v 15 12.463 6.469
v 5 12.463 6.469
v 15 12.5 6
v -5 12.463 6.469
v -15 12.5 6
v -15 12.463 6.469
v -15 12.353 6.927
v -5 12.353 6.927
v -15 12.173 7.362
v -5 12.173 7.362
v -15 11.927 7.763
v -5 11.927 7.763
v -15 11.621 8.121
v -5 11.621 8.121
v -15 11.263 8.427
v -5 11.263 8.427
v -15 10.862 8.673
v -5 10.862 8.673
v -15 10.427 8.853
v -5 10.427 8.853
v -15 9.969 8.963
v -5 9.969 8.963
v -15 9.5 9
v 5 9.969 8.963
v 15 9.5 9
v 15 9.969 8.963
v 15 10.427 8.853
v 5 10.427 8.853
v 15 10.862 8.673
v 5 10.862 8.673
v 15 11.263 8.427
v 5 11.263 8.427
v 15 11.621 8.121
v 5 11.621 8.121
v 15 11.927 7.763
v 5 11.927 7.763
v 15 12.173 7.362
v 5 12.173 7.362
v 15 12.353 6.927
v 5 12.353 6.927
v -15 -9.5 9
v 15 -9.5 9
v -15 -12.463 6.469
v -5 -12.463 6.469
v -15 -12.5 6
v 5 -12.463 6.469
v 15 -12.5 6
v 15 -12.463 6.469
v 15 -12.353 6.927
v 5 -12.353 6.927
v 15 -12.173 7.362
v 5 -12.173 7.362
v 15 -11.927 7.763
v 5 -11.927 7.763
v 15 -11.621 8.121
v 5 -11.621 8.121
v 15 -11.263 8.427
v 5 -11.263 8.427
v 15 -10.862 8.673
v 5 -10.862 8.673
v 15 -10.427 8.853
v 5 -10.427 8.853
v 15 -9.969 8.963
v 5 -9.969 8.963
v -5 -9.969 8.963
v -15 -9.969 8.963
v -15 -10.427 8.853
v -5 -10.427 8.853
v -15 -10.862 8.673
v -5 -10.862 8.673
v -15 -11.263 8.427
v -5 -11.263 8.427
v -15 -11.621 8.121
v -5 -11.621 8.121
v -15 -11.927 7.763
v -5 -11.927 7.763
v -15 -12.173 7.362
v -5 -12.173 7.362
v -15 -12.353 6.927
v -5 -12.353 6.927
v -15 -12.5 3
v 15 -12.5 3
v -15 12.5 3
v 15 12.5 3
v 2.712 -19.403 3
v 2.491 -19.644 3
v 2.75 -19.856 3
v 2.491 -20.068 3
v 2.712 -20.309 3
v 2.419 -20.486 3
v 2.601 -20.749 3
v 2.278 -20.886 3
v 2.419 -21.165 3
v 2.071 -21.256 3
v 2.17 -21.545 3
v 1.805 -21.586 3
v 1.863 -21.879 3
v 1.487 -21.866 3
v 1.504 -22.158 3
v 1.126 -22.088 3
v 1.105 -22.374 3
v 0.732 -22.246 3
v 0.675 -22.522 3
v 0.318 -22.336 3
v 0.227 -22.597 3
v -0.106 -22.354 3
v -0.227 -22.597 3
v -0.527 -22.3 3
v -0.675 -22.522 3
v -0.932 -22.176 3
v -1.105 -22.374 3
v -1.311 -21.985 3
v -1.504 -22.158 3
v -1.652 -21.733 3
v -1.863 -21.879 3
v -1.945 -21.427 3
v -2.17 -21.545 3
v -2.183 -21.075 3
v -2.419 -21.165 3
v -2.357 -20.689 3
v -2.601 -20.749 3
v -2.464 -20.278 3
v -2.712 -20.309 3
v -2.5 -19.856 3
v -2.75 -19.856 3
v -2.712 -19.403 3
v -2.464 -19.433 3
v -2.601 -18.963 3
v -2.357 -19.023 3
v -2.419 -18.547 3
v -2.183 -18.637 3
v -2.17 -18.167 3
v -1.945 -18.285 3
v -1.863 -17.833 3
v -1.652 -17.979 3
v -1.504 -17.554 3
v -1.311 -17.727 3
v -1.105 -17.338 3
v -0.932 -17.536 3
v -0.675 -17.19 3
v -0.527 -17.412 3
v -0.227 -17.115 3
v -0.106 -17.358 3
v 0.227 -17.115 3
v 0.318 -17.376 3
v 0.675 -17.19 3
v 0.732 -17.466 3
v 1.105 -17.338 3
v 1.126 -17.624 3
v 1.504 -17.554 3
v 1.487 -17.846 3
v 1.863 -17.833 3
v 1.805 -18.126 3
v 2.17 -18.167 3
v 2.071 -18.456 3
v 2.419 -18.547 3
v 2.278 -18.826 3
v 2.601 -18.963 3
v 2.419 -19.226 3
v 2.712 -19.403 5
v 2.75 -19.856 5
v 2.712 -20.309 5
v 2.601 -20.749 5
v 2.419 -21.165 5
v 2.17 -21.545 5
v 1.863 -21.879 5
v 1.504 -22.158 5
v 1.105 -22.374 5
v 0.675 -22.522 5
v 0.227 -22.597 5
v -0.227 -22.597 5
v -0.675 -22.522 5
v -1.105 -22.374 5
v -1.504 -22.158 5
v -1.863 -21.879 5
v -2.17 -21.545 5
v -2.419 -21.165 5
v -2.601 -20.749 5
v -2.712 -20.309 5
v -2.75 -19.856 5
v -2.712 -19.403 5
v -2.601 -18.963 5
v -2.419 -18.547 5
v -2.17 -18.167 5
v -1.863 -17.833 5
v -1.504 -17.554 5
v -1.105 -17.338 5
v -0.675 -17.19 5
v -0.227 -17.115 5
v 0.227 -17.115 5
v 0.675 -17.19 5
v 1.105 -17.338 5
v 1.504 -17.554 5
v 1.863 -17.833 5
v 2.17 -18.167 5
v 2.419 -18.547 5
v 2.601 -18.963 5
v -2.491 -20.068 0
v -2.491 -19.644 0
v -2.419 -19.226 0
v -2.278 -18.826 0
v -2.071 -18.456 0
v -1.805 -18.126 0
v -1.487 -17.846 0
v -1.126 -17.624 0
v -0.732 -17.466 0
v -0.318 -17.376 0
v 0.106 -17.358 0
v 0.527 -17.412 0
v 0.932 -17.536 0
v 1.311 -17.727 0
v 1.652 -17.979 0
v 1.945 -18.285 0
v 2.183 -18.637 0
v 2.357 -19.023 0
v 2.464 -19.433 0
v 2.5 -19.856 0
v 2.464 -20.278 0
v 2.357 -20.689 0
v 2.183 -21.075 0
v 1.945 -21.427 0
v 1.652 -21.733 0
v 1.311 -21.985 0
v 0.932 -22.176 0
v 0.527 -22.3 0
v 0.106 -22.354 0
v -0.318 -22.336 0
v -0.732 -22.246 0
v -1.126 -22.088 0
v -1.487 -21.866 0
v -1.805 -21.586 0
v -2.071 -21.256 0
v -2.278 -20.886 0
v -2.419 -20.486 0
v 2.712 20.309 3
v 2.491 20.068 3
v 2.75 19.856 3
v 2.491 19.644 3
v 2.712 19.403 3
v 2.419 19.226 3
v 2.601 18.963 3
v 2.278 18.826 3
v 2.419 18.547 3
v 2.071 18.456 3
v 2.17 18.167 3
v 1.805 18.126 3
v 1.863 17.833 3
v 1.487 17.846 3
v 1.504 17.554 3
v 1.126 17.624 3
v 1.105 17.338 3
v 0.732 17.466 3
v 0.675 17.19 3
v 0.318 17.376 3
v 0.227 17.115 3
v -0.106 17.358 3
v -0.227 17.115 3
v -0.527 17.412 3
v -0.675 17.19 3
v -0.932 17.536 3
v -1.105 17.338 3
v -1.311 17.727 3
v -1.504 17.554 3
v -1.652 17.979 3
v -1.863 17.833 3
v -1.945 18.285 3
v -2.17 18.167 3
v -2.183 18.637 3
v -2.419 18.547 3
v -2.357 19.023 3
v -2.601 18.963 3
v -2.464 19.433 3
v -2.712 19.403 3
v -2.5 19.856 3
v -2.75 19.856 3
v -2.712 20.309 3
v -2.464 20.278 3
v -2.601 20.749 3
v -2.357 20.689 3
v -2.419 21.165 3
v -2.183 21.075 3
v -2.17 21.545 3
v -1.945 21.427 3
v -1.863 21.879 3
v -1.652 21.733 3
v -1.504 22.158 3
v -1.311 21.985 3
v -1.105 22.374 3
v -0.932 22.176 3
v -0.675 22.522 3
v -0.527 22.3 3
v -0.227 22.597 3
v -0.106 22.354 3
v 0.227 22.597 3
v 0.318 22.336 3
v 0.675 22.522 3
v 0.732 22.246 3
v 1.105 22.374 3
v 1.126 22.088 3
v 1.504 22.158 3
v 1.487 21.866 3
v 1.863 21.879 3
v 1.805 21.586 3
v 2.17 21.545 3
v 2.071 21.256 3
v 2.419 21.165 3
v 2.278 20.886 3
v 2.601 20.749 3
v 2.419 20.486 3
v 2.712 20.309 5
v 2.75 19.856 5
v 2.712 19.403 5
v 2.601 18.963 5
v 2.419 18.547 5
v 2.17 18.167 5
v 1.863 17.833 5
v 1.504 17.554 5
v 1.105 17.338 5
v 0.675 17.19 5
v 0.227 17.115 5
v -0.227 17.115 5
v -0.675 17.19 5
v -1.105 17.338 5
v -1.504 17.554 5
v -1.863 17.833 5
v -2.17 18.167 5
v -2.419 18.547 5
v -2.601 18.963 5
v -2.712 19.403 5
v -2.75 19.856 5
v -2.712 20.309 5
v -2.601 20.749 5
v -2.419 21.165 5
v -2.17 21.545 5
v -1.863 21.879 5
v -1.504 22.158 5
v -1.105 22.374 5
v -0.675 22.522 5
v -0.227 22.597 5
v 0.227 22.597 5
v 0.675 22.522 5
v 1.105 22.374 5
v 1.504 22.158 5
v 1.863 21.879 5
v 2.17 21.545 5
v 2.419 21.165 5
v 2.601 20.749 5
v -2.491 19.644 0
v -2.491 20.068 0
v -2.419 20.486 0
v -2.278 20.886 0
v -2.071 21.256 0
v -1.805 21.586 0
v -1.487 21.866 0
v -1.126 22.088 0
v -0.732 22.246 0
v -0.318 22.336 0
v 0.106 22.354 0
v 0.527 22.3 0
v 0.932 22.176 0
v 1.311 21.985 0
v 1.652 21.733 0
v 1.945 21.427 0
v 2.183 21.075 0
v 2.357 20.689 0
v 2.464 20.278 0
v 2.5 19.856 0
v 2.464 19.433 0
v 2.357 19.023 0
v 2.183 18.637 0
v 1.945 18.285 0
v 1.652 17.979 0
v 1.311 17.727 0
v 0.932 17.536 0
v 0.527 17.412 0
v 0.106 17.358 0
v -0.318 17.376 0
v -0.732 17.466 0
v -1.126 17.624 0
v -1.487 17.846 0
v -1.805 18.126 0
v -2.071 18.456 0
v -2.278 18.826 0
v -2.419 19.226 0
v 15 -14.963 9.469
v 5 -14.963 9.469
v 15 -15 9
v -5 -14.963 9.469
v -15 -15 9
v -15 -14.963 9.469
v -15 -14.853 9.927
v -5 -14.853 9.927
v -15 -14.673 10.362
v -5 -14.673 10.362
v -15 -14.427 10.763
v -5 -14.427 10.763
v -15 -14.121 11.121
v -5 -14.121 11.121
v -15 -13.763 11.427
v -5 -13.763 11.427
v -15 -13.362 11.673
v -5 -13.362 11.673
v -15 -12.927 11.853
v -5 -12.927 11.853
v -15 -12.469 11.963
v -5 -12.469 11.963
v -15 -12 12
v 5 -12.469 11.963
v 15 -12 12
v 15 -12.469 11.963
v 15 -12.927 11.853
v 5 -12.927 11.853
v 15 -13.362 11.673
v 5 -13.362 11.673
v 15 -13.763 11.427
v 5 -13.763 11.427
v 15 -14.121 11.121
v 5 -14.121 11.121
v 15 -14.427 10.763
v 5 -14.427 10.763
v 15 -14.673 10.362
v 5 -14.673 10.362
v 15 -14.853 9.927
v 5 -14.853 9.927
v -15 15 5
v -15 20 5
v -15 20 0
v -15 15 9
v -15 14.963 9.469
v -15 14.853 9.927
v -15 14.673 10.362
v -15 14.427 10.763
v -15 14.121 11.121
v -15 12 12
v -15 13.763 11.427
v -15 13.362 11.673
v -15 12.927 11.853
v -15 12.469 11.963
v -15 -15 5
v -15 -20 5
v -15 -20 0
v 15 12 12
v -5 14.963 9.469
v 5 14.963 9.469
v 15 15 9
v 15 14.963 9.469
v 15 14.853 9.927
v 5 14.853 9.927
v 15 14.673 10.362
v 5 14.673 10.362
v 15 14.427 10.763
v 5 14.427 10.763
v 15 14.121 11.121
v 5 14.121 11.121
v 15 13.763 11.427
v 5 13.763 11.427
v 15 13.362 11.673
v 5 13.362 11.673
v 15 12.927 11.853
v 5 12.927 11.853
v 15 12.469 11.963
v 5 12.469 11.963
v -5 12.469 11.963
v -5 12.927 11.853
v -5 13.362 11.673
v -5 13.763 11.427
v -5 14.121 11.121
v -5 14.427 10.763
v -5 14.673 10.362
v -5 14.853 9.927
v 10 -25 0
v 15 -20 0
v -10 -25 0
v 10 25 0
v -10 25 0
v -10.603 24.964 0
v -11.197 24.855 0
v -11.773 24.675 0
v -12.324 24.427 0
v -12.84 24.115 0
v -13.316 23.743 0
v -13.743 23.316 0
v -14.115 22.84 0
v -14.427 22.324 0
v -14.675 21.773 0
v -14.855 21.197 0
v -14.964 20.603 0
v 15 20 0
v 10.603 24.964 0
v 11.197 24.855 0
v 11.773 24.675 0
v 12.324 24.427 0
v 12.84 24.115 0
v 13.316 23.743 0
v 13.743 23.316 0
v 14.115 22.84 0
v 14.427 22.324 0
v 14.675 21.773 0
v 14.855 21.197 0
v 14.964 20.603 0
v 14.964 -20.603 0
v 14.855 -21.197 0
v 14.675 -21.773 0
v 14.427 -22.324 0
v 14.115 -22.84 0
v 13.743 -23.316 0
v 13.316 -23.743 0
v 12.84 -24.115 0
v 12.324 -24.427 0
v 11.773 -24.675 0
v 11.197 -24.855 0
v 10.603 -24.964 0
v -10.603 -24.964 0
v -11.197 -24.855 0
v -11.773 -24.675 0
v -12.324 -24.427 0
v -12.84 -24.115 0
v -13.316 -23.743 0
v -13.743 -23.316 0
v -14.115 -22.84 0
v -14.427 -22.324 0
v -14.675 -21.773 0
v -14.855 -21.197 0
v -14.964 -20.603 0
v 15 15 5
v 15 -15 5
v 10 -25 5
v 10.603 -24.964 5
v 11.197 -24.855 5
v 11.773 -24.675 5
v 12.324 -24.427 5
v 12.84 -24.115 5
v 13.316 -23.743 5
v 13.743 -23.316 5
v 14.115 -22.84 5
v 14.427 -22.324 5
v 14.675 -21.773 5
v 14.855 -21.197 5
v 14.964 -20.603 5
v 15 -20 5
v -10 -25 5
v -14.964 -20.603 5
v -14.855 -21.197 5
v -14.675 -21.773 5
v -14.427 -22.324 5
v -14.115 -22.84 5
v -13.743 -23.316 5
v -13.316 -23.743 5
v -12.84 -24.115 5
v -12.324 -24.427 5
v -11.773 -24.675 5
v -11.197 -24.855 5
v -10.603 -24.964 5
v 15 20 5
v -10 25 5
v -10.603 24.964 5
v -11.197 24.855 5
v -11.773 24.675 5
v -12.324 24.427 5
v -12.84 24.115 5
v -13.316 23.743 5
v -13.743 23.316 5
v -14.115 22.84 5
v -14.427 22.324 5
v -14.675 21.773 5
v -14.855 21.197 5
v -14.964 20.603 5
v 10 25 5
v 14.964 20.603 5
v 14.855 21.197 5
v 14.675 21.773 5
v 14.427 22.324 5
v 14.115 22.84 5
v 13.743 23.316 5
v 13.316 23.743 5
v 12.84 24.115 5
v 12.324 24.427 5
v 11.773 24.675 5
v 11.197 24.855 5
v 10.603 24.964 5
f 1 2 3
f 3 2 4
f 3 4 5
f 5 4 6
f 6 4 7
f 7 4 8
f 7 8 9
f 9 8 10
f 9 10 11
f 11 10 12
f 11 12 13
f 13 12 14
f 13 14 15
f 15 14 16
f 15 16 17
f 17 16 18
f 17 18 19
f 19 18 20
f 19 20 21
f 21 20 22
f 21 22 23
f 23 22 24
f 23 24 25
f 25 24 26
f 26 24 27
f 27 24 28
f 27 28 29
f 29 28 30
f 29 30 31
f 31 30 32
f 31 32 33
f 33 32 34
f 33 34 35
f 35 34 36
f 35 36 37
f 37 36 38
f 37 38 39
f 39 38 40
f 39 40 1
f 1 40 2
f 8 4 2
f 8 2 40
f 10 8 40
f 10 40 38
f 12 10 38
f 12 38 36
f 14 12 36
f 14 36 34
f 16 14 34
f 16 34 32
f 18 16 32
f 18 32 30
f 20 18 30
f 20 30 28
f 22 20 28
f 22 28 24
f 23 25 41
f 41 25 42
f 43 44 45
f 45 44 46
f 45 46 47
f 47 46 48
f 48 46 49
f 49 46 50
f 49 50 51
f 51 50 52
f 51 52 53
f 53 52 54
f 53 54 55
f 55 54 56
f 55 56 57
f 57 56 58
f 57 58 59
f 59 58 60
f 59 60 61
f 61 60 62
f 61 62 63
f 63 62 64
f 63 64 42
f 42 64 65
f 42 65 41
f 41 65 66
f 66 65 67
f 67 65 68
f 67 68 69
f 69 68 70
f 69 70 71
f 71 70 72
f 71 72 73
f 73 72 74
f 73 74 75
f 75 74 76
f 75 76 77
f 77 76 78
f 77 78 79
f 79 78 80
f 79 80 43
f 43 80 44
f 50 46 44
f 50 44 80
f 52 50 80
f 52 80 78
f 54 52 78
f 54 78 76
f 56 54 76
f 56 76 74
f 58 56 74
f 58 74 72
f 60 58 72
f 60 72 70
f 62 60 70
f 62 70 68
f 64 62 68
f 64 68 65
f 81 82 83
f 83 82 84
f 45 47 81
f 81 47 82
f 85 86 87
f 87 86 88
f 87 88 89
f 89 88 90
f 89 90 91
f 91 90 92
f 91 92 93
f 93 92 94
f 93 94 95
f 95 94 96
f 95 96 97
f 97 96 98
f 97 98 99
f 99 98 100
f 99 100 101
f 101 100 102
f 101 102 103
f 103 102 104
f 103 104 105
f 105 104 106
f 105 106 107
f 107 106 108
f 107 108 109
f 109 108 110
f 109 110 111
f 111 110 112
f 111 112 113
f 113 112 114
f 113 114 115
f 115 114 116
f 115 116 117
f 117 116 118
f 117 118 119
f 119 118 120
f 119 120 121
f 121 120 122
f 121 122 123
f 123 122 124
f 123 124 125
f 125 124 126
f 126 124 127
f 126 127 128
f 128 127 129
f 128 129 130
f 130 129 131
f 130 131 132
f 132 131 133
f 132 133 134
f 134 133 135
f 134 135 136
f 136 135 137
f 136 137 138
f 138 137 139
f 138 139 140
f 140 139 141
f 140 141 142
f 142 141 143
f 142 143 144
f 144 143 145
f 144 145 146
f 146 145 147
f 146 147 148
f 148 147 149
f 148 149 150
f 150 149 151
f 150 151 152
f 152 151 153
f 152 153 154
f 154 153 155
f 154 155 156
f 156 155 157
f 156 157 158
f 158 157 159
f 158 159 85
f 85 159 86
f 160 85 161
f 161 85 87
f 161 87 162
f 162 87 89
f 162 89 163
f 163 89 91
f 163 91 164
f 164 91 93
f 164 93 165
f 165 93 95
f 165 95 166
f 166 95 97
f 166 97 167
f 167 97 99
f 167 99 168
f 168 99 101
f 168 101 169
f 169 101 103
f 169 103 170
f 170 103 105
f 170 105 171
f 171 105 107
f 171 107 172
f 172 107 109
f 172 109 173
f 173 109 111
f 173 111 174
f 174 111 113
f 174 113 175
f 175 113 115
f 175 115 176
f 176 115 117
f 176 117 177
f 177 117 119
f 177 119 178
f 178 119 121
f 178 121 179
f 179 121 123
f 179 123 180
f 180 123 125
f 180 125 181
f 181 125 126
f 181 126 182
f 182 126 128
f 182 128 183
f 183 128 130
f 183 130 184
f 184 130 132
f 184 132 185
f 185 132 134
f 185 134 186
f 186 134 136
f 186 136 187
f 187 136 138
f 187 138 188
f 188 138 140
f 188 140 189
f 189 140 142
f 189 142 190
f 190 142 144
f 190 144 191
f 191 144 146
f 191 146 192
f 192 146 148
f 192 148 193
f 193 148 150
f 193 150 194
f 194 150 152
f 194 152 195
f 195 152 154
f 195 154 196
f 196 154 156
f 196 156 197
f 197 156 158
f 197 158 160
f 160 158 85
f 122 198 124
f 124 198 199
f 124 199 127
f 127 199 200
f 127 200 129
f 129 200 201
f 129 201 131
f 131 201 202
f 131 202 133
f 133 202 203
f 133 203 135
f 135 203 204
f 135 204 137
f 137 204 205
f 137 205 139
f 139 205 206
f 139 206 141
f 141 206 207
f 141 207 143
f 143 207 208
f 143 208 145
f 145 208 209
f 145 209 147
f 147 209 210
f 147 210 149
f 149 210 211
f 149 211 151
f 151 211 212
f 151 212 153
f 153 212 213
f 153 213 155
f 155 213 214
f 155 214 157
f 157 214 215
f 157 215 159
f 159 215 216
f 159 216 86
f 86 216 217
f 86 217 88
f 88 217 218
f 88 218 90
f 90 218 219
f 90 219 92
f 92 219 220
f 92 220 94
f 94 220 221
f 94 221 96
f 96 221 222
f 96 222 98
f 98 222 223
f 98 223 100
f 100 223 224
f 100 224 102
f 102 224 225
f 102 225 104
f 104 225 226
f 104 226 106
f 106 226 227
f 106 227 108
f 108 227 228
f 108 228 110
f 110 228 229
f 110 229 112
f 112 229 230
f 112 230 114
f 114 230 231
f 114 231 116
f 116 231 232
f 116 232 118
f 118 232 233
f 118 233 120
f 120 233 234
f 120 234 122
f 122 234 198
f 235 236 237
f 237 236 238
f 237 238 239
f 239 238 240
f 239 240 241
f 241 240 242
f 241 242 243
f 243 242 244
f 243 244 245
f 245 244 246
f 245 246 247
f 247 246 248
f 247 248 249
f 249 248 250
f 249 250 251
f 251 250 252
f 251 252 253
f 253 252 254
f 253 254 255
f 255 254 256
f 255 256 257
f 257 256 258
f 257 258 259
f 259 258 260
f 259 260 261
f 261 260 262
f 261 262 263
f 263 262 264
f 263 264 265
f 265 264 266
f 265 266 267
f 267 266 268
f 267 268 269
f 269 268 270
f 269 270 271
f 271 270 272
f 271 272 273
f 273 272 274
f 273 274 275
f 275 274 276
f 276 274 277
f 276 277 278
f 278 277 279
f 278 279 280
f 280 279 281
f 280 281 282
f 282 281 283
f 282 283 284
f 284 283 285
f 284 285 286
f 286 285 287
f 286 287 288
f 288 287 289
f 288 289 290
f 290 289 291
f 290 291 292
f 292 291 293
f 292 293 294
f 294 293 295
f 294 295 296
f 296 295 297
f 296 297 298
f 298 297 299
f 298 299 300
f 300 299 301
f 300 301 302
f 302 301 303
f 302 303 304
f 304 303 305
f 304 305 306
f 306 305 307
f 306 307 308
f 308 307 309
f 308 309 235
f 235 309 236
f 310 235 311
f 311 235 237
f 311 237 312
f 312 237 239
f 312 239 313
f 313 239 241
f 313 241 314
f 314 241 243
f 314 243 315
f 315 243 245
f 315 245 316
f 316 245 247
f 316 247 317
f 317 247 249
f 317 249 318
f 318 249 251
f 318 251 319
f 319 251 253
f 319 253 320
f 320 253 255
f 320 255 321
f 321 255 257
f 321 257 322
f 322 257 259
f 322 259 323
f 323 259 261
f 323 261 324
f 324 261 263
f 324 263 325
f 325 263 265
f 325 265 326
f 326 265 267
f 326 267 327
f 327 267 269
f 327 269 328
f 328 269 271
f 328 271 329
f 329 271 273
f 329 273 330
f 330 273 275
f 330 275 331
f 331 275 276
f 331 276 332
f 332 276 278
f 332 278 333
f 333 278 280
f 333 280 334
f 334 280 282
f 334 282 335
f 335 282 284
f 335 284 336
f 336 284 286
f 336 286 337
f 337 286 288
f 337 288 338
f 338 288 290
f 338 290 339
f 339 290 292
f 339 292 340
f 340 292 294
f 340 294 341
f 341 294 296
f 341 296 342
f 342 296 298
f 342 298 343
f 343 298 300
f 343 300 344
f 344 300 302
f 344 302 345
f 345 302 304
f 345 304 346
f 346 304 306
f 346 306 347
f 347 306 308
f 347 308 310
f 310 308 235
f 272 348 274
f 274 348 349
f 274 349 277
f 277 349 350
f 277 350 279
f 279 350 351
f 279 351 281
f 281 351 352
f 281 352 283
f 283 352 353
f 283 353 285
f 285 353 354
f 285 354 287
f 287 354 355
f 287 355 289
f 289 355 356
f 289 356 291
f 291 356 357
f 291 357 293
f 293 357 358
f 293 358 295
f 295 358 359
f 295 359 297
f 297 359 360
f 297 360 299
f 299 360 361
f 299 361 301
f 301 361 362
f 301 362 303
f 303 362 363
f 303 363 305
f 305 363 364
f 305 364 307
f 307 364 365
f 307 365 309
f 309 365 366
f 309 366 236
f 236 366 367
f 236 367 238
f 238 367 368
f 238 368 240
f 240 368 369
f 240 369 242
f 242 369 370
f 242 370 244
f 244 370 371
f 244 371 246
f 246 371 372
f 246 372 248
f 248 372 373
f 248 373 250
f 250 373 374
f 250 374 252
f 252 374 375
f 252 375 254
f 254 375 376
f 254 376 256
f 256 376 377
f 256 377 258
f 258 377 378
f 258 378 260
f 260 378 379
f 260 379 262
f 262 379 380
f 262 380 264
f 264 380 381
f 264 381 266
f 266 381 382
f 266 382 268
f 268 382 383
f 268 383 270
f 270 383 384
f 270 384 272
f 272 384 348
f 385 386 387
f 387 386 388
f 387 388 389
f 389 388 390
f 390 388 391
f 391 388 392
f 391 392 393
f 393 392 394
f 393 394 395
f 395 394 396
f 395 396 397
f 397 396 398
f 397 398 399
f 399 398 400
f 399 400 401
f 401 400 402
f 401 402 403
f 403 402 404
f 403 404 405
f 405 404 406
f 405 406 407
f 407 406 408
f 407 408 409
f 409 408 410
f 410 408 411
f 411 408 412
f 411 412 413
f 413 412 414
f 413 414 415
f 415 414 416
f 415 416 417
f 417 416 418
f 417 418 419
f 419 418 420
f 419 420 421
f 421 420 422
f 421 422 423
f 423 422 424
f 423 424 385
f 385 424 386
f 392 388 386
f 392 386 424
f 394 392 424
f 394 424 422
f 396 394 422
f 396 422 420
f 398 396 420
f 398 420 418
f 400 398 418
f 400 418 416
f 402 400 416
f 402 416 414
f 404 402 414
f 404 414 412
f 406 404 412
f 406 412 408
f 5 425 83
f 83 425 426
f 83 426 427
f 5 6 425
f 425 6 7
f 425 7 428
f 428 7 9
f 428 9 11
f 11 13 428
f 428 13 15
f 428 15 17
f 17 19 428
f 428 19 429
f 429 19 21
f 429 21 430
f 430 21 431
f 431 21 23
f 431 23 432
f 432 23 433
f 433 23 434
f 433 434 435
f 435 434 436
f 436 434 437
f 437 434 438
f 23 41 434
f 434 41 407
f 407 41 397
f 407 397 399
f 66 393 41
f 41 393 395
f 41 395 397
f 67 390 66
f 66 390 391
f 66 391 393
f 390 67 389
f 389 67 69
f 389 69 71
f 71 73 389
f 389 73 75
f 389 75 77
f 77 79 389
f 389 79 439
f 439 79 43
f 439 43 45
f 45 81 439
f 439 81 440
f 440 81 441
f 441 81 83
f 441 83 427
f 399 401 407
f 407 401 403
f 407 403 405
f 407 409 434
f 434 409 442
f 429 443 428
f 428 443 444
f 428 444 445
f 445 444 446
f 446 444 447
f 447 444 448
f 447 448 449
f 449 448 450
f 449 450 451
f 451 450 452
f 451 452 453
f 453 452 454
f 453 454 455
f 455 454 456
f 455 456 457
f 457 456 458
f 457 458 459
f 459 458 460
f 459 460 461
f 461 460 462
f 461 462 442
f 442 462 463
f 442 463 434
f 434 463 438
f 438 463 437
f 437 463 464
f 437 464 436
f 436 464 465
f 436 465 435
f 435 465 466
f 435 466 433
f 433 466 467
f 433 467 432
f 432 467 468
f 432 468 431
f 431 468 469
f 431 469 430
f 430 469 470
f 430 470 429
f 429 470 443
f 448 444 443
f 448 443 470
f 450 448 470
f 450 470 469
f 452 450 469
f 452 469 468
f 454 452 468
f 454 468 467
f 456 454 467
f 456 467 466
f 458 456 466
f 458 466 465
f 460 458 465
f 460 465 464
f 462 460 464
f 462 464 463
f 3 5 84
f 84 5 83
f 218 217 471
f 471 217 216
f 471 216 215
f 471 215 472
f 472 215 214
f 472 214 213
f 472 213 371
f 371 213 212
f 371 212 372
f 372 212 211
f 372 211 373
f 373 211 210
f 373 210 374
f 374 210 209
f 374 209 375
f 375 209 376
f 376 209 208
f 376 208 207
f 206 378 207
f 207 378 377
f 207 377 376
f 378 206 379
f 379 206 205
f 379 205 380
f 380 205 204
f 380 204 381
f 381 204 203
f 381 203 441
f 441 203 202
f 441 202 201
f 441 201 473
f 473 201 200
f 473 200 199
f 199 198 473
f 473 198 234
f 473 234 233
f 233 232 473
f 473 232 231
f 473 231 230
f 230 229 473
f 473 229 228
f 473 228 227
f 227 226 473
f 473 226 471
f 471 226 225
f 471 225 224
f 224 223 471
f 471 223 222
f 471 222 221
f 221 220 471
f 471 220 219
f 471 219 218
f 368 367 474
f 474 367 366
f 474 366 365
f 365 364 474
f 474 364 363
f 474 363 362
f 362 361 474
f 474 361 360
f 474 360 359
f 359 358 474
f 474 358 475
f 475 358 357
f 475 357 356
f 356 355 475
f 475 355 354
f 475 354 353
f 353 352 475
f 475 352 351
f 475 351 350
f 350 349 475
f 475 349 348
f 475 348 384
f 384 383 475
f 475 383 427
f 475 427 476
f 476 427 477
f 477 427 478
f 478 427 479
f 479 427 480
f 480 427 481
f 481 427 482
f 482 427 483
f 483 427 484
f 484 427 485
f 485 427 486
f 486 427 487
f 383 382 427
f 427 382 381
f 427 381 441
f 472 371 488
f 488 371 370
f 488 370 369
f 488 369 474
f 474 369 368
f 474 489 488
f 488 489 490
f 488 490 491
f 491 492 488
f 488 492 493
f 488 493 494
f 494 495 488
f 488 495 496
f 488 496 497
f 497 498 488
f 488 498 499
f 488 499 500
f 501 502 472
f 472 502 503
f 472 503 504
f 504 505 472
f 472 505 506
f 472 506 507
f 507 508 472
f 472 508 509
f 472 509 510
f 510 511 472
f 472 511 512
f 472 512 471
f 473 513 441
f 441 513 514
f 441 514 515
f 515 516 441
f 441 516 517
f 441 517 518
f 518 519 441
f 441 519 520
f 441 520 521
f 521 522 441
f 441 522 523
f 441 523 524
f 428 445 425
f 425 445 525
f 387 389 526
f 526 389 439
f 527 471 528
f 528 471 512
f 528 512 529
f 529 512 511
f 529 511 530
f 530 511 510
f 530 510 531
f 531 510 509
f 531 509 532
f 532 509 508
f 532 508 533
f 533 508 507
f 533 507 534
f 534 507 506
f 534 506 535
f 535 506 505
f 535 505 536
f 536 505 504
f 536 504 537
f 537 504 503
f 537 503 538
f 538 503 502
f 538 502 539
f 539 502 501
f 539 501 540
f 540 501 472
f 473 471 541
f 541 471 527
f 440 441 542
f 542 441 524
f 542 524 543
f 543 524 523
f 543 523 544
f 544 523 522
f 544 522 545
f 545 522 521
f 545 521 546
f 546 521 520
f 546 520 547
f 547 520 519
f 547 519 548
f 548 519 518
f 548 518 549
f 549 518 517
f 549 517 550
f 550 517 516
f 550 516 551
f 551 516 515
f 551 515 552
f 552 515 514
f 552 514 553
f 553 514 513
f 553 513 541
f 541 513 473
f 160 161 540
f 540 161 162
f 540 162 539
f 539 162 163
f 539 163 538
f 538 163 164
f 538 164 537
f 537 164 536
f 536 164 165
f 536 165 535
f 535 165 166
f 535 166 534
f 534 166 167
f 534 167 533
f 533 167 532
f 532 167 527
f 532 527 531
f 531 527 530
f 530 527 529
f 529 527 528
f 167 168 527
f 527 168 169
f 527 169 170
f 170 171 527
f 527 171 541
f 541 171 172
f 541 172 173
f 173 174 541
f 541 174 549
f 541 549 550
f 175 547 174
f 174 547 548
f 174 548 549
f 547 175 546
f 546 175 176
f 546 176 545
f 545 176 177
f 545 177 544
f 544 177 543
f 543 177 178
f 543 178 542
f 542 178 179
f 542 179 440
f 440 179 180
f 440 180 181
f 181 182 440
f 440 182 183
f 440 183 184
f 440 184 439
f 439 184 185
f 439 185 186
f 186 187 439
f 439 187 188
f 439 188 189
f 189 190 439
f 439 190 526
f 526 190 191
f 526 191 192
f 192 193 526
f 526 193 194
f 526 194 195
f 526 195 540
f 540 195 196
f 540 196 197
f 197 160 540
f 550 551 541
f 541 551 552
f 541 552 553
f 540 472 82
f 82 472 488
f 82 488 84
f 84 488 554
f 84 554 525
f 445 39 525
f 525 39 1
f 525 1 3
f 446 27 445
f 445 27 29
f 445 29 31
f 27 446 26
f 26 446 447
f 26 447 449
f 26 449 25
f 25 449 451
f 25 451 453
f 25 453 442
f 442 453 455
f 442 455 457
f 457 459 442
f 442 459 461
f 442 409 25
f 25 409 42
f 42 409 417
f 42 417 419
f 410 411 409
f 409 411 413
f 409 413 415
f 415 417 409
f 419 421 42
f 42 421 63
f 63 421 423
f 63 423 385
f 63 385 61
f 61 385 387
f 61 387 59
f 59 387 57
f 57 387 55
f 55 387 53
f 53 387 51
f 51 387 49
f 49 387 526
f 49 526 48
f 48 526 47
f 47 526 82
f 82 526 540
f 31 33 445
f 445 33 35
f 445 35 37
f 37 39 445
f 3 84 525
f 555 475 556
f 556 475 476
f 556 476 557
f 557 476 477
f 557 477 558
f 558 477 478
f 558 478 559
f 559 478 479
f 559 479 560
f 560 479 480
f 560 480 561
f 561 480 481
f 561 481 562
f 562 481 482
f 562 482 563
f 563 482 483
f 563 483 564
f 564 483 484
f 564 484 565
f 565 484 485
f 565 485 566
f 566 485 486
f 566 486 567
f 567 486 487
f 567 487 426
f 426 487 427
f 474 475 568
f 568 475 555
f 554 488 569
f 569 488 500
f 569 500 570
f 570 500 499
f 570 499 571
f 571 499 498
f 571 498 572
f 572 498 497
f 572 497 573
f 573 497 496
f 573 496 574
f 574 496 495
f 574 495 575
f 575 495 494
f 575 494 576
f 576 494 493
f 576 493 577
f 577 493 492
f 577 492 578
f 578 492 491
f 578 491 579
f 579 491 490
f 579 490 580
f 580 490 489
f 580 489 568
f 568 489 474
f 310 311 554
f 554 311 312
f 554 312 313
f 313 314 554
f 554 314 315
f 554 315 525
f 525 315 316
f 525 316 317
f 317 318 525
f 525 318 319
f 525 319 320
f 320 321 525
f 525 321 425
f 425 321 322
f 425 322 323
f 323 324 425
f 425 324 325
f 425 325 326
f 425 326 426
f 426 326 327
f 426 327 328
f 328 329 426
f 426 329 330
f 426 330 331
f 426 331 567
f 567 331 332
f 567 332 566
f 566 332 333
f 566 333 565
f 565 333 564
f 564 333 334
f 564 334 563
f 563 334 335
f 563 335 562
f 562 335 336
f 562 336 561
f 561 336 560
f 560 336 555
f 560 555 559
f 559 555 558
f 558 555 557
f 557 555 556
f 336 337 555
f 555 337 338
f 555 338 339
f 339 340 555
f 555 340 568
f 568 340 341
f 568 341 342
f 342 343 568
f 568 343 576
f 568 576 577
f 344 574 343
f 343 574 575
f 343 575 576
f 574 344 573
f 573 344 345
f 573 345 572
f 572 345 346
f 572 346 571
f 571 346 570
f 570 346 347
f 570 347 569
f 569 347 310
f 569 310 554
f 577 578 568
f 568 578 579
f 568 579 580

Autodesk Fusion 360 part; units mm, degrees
sketch "Esquisse1" plane through (0, 0, 0) normal (0, 0, 1) x (1, 0, 0)
  line L0 (10, 25) -> (-10, 25)
  line L1 (-15, 20) -> (-15, -20)
  line L2 (-10, -25) -> (10, -25)
  line L3 (15, -20) -> (15, 20)
  line L4 (15, 25) -> (-15, -25) construction
  line L5 (-15, 25) -> (15, -25) construction
  line L6 (0, 0) -> (0, 40)
  line L7 (0, 40) -> (0, -29.6677)
  circle A0 centre (0, 20) radius 2.5
  circle A1 centre (0, -20) radius 2.5
  arc A2 (-10, 25) -> (-15, 20) centre (-10, 20) ccw
  arc A3 (15, 20) -> (10, 25) centre (10, 20) ccw
  arc A4 (10, -25) -> (15, -20) centre (10, -20) ccw
  arc A5 (-15, -20) -> (-10, -25) centre (-10, -20) ccw
  line L8 (-15, -15) -> (15, -15)
  line L9 (15, -15) -> (15, 15)
  line L10 (15, 15) -> (-15, 15)
  line L11 (-15, 15) -> (-15, -15)
  line L12 (-15, -15) -> (15, 15) construction
  line L13 (15, -15) -> (-15, 15) construction
  line L14 (-15, -12.5) -> (15, -12.5)
  line L15 (15, -12.5) -> (15, 12.5)
  line L16 (15, 12.5) -> (-15, 12.5)
  line L17 (-15, 12.5) -> (-15, -12.5)
  line L18 (-15, -12.5) -> (15, 12.5) construction
  line L19 (15, -12.5) -> (-15, 12.5) construction
  dimension "d1" = 30
  dimension "d2" = 50
  dimension "d3" = 5
  dimension "d4" = 5
  dimension "d5" = 5
  dimension "d6" = 5
  dimension "d7" = 5
  dimension "d8" = 5
  dimension "d9" = 30
  dimension "d10" = 30
  dimension "d20" = 25
extrude "Extrusion1" add sketch "Esquisse1" along normal blind 5 contours L0 L3 L6 L7 A0 A3 L10 | L0 L1 L6 L7 A0 A2 L10 | L2 L3 L7 A1 A4 L8 | L1 L2 L7 A1 A5 L8 makes body 1 at (-9.1574, 21.5425, 0) makes body 2 at (9.1574, -21.5425, 0)
extrude "Extrusion2" add sketch "Esquisse1" along normal blind 12 contours L3 L6 L7 L9 L10 L16 | L3 L6 L7 L9 L14 L15 L16 | L1 L6 L7 L10 L11 L16 | L3 L7 L8 L9 L14 | L1 L6 L7 L11 L14 L16 L17 | L1 L7 L8 L11 L14 bodies 1 2
extrude "Extrusion3" cut sketch "Esquisse1" along normal blind 9 contours L3 L6 L7 L9 L14 L15 L16 | L1 L6 L7 L11 L14 L16 L17 bodies 1
fillet "Congé1" radius 3 2 edges at (0, 15, 12) (0, -15, 12) on bodies 1
delete_face "DeleteFace1" 1 faces at (2.4876, -20.2489, 1.6667) on bodies 1
delete_face "DeleteFace2" 1 faces at (2.4876, 20.2489, 3.3333) on bodies 1
hole "Perçage1" at (0, 19.856, 5) direction (0, 0, -1) diameter 5 depth 5 tip angle 180 counterbore diameter 5.5 counterbore depth 2 bodies 1
hole "Perçage2" at (0, -19.856, 5) direction (0, 0, -1) diameter 5 depth 5 tip angle 180 counterbore diameter 5.5 counterbore depth 2 bodies 1
extrude "Extrusion4" add sketch "Esquisse1" along normal blind 3 contours L3 L6 L7 L9 L14 L15 L16 | L1 L6 L7 L11 L14 L16 L17 bodies 1
fillet "Congé2" radius 3 2 edges at (0, -12.5, 9) (0, 12.5, 9) on bodies 1
